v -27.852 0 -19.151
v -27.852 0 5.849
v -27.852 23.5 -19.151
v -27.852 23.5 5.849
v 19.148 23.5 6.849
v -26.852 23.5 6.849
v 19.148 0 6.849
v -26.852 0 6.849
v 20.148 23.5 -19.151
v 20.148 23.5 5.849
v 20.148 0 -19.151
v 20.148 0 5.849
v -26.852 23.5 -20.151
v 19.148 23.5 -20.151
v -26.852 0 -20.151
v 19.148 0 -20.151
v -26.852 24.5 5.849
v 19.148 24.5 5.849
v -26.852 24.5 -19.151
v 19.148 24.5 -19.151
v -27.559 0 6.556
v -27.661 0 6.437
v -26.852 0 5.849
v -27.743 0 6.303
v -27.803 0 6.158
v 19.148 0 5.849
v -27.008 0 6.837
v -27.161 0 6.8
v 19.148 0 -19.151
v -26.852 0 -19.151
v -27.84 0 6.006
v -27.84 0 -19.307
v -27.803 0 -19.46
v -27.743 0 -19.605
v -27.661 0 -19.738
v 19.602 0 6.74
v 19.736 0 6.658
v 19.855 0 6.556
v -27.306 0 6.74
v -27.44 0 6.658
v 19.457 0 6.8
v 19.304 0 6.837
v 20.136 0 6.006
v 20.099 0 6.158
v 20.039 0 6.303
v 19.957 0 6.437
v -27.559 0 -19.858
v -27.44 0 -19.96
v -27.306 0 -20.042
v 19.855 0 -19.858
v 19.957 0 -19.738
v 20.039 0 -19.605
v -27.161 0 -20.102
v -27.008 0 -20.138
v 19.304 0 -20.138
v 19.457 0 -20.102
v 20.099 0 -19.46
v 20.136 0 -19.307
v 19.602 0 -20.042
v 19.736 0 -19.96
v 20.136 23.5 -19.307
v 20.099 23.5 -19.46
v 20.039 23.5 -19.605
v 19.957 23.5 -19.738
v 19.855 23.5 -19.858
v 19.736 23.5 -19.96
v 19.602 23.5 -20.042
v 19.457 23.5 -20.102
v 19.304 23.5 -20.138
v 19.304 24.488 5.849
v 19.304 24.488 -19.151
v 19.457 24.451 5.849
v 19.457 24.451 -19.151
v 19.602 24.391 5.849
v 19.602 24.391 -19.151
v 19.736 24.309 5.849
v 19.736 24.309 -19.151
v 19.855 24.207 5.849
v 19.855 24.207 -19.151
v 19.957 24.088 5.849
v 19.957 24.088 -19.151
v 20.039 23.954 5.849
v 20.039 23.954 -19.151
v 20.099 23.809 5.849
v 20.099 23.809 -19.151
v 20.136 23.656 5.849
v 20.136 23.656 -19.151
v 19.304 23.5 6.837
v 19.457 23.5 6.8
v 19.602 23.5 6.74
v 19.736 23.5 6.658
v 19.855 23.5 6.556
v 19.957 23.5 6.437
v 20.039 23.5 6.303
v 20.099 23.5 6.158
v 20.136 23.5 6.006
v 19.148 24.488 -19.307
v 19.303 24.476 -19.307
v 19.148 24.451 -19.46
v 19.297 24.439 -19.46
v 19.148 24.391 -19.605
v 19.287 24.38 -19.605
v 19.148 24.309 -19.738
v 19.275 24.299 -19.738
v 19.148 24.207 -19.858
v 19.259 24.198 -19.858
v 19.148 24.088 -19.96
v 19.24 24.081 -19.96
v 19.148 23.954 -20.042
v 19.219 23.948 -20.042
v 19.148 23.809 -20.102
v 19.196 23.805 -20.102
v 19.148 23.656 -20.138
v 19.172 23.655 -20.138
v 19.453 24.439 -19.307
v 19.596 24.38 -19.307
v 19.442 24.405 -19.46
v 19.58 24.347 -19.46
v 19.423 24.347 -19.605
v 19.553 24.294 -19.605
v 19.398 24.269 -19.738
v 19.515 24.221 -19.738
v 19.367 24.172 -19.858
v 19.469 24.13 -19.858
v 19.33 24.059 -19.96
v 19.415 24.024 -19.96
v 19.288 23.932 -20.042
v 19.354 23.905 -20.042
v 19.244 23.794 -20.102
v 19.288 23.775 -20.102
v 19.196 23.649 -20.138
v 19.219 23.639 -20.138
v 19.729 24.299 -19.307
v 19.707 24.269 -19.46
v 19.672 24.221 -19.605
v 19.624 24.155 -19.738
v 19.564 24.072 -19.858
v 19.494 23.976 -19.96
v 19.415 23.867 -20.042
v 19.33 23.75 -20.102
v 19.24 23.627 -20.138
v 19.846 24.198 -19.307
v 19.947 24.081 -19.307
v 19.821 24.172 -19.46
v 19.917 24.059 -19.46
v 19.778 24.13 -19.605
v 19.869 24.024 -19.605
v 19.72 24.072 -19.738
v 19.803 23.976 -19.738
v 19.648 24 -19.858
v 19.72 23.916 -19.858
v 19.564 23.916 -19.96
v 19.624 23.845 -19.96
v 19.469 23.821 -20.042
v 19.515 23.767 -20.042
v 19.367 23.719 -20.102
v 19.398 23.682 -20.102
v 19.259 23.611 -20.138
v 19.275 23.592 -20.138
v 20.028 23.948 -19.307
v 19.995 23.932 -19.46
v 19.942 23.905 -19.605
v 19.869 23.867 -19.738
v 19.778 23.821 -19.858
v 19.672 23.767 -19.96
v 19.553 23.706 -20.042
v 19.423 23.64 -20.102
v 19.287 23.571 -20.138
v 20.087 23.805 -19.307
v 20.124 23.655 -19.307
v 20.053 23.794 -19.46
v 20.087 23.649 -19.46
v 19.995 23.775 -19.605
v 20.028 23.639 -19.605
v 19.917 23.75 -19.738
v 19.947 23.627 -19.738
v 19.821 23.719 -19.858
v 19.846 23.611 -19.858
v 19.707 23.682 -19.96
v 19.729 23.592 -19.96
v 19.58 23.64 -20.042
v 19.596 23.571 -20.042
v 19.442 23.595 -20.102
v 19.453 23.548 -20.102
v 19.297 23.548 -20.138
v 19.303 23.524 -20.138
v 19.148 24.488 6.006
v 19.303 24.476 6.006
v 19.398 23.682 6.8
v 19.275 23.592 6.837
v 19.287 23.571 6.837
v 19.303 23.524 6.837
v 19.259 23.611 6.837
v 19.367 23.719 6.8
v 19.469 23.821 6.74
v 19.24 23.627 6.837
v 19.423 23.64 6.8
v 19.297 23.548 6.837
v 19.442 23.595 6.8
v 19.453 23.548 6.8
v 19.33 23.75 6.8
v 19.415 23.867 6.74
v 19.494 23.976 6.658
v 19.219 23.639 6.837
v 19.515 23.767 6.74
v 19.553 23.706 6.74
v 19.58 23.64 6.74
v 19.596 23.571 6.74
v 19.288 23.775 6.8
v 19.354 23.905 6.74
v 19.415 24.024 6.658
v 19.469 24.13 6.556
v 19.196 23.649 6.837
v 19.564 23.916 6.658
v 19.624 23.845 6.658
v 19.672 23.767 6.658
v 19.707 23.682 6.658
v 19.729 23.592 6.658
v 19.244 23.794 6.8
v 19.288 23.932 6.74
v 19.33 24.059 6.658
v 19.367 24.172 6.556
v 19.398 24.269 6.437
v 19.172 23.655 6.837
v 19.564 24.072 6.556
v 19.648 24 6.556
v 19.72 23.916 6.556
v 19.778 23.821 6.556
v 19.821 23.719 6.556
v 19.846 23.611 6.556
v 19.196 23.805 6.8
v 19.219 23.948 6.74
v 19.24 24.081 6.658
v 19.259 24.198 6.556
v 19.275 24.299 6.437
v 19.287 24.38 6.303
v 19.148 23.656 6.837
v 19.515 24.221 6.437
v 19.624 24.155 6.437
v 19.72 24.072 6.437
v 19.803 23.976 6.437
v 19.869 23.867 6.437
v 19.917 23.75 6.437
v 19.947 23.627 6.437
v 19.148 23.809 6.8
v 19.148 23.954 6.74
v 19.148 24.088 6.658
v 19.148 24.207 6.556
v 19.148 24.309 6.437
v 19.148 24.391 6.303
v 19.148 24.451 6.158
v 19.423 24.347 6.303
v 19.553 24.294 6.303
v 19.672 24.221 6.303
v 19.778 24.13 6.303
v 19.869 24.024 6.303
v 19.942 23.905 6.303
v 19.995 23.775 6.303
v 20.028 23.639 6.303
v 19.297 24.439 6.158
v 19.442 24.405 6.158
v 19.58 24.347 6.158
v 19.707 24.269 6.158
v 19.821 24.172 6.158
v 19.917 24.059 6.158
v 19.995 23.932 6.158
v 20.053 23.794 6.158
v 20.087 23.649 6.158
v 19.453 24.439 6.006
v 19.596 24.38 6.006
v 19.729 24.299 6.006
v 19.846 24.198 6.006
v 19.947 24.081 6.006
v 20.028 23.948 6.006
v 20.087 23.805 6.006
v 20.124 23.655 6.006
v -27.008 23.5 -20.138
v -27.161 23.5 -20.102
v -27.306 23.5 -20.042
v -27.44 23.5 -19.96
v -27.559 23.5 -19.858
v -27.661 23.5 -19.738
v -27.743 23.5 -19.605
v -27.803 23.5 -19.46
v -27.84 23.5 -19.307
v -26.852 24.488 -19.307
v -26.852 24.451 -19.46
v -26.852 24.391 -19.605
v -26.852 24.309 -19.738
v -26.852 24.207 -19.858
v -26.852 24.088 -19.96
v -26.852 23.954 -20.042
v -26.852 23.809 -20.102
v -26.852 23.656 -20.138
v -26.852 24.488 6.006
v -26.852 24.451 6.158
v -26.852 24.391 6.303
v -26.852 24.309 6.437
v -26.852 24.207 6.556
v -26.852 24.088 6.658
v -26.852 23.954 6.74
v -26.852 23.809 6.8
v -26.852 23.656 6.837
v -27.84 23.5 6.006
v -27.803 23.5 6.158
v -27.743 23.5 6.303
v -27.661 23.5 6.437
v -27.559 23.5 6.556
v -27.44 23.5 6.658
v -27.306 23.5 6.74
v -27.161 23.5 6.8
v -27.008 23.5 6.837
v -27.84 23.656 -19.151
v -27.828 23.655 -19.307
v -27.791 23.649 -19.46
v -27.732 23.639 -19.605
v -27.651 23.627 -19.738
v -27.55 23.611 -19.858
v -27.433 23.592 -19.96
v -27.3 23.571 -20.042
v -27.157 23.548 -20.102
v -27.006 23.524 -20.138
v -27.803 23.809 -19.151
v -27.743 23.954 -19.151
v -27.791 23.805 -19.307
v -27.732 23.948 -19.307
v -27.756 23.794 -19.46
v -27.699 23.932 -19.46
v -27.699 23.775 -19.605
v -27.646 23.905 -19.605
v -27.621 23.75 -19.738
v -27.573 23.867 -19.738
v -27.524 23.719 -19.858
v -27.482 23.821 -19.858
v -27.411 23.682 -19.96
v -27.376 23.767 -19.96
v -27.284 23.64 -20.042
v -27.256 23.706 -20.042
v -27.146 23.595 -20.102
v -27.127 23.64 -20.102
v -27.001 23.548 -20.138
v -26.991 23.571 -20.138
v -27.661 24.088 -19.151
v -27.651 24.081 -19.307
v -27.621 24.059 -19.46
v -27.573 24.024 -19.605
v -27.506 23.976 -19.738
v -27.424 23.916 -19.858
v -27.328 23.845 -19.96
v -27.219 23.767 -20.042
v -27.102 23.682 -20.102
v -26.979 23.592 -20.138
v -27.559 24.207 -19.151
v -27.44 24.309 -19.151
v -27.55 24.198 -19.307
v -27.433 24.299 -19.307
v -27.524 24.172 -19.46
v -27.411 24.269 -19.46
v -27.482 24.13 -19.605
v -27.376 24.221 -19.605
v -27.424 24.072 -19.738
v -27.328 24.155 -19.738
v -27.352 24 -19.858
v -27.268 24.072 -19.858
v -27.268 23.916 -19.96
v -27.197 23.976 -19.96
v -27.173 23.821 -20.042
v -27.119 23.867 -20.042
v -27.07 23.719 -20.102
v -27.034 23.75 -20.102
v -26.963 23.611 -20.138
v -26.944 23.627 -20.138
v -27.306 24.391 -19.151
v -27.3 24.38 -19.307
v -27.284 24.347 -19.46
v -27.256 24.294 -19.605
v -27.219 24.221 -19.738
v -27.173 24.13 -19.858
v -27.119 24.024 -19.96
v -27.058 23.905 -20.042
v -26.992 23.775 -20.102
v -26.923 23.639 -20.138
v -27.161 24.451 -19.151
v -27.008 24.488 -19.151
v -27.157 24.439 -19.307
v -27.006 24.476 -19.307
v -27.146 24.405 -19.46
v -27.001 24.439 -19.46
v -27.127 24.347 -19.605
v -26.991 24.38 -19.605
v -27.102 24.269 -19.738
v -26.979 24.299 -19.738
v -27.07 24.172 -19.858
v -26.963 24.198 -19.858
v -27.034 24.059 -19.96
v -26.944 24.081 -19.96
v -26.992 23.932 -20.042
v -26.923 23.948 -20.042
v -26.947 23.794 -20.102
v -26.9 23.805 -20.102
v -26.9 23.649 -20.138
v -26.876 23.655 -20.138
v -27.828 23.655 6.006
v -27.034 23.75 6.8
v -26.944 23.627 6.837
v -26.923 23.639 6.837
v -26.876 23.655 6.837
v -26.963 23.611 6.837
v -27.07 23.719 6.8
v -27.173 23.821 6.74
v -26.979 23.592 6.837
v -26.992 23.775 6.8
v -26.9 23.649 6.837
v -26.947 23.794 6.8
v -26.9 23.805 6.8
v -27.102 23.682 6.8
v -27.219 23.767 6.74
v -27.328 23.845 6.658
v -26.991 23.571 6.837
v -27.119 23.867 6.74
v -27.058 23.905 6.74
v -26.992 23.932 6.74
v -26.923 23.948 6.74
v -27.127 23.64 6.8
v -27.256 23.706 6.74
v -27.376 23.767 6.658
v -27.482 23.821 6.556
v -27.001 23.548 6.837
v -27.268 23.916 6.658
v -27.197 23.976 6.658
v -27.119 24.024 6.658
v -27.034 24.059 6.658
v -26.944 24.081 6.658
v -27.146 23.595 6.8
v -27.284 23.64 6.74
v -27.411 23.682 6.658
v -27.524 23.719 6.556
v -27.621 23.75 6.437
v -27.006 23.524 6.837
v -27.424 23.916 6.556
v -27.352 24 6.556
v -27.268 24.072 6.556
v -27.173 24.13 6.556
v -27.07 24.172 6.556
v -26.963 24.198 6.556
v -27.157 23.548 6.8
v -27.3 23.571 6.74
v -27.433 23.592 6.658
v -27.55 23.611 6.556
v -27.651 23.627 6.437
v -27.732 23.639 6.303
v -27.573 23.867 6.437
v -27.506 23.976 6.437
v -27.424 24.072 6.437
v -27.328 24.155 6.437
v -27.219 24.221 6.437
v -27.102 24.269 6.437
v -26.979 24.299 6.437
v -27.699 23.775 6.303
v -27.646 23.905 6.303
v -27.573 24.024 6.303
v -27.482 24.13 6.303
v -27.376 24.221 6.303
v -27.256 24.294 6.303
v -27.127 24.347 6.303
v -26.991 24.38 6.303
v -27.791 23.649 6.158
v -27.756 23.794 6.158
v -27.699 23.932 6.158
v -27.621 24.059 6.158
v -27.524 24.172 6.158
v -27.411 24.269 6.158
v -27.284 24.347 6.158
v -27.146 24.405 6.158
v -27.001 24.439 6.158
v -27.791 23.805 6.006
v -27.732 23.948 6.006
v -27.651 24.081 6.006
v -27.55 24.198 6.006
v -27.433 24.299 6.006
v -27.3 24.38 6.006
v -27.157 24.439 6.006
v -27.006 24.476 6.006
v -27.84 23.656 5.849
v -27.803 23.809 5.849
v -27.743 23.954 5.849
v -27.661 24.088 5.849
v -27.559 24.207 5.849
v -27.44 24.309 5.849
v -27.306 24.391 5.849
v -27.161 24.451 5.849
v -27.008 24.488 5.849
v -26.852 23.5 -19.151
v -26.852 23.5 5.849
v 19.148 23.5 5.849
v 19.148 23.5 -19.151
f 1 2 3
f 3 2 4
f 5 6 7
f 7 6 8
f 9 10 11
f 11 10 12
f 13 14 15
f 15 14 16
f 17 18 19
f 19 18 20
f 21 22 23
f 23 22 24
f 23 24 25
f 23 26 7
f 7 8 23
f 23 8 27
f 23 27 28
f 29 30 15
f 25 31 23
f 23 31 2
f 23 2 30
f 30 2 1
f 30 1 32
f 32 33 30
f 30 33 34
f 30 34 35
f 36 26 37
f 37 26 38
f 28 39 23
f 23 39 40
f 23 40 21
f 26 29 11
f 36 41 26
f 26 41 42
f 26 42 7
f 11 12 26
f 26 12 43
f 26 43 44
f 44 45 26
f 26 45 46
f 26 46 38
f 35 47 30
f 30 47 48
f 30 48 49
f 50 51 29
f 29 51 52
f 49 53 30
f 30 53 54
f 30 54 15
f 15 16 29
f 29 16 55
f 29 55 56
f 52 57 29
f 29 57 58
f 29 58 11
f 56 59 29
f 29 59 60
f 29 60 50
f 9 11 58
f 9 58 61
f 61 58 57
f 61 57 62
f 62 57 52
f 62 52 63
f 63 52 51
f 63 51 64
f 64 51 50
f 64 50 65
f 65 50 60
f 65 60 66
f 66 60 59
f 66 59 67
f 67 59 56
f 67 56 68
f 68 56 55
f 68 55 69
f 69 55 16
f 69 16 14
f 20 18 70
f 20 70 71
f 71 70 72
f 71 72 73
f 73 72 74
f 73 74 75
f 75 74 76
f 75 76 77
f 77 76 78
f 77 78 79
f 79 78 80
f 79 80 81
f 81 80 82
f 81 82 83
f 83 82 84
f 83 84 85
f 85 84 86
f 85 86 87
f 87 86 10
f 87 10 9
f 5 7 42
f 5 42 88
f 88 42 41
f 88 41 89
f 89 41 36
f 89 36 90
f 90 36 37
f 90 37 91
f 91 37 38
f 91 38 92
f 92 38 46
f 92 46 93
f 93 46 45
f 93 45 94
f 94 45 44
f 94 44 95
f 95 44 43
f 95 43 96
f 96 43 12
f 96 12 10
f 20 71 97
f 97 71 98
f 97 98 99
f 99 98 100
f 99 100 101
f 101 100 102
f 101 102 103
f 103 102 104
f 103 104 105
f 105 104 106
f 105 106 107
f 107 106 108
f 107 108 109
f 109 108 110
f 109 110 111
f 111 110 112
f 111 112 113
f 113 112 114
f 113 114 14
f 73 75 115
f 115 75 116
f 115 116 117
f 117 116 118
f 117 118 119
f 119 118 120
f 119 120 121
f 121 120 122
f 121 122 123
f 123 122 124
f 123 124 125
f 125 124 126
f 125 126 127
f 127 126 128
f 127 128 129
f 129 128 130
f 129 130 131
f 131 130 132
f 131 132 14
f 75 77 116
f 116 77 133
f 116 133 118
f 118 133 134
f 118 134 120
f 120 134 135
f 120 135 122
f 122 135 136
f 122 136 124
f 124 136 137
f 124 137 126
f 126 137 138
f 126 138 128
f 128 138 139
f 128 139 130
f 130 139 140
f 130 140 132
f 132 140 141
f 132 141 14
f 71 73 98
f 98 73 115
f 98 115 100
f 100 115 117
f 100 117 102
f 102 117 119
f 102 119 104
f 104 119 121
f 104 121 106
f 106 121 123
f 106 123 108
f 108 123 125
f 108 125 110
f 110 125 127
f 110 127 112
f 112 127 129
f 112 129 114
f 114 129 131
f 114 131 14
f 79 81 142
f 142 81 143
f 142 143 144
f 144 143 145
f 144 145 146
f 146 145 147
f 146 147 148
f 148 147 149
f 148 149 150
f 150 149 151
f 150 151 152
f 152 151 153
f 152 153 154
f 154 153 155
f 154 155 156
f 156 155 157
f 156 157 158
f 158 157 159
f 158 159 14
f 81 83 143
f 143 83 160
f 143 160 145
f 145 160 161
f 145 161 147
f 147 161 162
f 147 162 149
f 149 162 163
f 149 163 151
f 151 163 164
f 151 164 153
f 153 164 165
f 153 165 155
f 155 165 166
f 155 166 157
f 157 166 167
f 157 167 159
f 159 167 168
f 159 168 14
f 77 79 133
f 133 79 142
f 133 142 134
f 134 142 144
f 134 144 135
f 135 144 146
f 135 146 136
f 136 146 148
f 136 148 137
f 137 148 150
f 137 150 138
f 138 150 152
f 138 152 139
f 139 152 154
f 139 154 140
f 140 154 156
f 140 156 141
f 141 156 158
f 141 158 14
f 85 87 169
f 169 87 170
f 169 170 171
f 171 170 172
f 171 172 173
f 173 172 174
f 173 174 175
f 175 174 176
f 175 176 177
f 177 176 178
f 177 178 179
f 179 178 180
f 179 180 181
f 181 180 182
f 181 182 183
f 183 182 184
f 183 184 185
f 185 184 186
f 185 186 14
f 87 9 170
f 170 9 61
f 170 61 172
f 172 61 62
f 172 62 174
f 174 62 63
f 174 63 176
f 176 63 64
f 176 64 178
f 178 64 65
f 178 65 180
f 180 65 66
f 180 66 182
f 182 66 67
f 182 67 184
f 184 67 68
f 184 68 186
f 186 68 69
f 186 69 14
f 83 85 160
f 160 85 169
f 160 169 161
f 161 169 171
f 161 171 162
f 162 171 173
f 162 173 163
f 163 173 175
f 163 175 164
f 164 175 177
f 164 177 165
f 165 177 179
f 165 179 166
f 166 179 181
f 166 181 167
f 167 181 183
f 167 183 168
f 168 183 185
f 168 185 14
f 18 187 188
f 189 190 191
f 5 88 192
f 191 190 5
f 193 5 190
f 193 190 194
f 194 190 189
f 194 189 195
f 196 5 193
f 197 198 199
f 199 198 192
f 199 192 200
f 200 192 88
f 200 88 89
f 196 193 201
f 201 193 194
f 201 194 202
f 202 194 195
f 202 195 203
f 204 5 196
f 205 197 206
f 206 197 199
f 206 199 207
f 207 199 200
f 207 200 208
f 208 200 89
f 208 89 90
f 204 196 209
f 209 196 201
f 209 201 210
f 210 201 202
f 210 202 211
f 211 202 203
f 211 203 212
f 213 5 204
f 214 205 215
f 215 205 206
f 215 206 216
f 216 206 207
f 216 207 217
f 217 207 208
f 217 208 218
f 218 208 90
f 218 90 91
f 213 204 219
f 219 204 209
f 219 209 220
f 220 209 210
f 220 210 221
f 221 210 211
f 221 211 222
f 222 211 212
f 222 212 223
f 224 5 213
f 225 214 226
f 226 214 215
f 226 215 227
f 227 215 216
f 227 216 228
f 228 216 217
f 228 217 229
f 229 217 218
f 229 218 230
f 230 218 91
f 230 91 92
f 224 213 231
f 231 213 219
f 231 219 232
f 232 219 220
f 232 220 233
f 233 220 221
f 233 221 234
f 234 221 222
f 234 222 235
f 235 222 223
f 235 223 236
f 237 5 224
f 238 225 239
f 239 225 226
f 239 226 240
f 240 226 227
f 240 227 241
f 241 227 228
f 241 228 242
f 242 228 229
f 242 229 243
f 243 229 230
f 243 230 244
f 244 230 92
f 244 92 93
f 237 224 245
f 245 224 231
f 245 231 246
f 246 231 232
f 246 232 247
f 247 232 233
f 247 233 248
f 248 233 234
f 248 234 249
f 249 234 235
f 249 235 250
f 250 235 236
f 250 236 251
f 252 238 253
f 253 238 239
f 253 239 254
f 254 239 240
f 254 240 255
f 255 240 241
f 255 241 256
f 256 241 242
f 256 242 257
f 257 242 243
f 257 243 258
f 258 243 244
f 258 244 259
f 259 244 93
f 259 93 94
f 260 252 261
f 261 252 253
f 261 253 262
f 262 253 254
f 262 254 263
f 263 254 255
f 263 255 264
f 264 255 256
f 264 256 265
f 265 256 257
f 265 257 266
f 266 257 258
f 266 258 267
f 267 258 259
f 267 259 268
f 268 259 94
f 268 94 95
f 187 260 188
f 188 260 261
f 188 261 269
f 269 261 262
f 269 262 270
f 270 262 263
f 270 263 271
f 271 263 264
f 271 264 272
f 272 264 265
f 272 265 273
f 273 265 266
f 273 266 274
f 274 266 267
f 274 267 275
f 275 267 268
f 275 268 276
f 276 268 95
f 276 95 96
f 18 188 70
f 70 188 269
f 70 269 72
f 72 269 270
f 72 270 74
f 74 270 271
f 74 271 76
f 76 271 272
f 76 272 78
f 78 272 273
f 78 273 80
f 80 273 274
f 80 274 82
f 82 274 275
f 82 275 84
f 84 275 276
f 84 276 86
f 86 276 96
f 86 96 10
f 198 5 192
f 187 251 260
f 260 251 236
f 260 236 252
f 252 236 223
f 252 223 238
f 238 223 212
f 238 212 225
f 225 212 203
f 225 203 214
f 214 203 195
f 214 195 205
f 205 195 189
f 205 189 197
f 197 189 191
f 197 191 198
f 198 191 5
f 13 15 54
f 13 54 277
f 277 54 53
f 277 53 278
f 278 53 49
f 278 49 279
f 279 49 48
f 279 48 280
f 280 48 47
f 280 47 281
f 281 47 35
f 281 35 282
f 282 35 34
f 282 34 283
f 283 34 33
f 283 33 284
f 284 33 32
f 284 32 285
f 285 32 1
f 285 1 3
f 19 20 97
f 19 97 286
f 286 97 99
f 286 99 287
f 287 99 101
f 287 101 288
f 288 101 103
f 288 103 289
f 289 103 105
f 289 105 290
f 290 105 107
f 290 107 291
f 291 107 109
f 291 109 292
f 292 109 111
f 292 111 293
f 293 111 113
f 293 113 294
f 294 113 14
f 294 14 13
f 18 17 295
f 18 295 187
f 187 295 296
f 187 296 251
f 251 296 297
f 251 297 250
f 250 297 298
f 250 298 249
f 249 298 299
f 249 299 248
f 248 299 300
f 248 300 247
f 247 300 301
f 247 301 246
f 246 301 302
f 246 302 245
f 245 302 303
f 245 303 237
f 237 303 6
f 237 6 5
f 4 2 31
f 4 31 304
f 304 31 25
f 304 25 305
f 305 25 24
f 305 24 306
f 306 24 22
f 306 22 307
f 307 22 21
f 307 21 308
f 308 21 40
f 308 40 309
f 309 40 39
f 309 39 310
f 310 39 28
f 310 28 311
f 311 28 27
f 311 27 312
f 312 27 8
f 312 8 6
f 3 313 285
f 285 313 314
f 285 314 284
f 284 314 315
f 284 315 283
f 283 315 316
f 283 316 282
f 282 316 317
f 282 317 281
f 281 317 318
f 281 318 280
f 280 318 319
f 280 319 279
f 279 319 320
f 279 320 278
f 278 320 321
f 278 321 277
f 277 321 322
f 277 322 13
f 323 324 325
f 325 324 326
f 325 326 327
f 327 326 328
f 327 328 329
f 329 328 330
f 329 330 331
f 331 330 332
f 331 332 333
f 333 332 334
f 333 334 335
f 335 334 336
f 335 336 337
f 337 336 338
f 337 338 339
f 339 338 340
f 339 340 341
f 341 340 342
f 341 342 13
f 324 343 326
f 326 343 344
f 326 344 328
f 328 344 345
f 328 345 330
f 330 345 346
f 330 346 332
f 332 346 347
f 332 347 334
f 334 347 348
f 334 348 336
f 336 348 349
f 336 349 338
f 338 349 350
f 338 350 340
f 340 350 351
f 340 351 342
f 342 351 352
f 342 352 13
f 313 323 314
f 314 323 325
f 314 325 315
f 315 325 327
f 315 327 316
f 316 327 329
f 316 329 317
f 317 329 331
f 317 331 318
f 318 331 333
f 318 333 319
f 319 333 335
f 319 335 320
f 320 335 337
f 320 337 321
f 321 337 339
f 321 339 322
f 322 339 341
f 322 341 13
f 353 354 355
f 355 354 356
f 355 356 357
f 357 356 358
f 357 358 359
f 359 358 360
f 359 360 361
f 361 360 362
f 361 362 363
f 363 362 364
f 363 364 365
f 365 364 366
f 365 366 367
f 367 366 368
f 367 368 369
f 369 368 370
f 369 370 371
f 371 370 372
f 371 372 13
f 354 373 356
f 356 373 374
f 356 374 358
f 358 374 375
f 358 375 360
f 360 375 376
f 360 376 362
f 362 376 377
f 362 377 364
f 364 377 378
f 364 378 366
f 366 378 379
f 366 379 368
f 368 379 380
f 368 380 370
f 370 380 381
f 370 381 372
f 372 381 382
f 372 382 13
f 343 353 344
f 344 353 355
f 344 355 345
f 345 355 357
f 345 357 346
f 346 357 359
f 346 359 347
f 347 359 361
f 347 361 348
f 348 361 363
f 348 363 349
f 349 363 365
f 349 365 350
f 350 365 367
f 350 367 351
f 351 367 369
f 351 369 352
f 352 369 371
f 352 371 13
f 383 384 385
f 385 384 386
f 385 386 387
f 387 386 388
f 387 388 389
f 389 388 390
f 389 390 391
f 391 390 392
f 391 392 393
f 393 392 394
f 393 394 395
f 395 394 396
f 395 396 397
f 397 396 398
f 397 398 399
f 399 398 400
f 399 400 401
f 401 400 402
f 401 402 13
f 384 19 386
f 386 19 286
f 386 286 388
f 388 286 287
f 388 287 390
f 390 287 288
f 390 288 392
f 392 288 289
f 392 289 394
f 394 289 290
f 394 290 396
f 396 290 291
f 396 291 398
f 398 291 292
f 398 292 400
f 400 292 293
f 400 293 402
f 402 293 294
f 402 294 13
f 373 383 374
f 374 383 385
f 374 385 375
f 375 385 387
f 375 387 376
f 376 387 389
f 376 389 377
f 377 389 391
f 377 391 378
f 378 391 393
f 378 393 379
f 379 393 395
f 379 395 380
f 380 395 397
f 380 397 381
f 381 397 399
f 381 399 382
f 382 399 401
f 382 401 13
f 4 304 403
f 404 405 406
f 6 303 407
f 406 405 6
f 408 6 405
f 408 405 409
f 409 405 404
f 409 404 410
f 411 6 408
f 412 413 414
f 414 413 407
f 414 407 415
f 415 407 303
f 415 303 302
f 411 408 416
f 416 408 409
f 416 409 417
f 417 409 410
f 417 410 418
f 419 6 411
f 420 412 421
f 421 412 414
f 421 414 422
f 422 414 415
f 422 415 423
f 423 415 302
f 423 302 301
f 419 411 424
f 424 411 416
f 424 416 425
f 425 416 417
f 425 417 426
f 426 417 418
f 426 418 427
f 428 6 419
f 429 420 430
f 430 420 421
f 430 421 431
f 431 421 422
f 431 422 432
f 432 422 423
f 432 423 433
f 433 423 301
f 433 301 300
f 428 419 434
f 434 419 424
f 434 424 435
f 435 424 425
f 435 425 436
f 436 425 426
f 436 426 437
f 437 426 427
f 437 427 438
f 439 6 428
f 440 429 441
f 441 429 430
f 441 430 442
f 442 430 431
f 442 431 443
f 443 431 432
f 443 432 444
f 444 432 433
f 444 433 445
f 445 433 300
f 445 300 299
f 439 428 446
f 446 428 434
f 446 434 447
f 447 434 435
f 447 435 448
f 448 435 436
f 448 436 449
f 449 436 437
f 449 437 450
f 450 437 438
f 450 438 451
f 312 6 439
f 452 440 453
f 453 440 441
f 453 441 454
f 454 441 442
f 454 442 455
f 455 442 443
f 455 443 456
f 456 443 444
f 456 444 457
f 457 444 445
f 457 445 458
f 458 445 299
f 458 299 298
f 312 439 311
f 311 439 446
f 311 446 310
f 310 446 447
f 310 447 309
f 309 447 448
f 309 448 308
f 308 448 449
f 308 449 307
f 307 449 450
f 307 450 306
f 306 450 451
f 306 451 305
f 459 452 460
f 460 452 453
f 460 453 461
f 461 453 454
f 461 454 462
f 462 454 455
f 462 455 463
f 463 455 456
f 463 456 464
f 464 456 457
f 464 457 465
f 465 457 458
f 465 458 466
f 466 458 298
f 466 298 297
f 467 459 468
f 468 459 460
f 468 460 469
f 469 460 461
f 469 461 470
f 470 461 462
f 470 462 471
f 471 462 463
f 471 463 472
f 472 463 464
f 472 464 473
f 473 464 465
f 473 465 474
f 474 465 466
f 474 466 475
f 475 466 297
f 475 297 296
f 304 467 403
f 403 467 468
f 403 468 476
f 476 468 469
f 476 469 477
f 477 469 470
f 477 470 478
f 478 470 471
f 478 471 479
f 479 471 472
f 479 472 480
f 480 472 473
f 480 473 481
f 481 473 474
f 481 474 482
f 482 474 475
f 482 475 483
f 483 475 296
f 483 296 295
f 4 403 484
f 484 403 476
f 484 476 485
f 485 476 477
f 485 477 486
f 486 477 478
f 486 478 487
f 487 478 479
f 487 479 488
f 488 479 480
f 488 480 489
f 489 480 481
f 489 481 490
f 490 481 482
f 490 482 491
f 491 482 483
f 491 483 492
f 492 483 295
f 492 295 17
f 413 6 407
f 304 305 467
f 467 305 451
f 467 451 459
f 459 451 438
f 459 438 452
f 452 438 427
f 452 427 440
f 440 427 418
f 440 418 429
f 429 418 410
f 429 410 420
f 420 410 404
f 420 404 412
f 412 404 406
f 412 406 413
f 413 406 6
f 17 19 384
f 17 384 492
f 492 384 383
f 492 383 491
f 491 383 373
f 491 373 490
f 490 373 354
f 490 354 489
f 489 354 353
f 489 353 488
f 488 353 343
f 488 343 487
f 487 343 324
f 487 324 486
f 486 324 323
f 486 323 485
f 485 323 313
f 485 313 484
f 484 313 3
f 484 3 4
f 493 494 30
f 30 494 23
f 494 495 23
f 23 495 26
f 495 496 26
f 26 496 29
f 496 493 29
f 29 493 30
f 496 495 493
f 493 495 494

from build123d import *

# Parameters (mm, degrees)
SKETCH_1_W          = 48
SKETCH_1_H          = 27
EXTRUDE_1_DEPTH     = 24.5
FILLET_1_R          = 1
SKETCH_4_W          = 46
SKETCH_4_H          = 25
CUT_EXTRUDE_1_DEPTH = 23.5


with BuildPart() as part:
    # ｽｹｯﾁ1 → ﾎﾞｽ - 押し出し1 (new body)
    with BuildSketch(Plane(origin=(0, 0, 0), x_dir=(1, 0, 0), z_dir=(0, 1, 0))):
        with Locations((-3.851977642, 6.650666667)):
            Rectangle(SKETCH_1_W, SKETCH_1_H)
    extrude(amount=EXTRUDE_1_DEPTH)

    # ﾌｨﾚｯﾄ1
    fillet_1_edges = [part.edges().sort_by_distance(p)[0] for p in [
        (20.148022358, 24.5, -6.650666667),
        (-3.851977642, 24.5, -20.150666667),
        (-27.851977642, 24.5, -6.650666667),
        (-3.851977642, 24.5, 6.849333333),
        (-27.851977642, 12.25, -20.150666667),
        (20.148022358, 12.25, -20.150666667),
        (20.148022358, 12.25, 6.849333333),
        (-27.851977642, 12.25, 6.849333333),
    ]]
    fillet(fillet_1_edges, radius=FILLET_1_R)

    # ｽｹｯﾁ4 → ｶｯﾄ - 押し出し1 (cut)
    with BuildSketch(Plane.XZ):
        with Locations((-3.851977642, -6.650666667)):
            Rectangle(SKETCH_4_W, SKETCH_4_H)
    extrude(amount=-CUT_EXTRUDE_1_DEPTH, mode=Mode.SUBTRACT)


solid = part.part
